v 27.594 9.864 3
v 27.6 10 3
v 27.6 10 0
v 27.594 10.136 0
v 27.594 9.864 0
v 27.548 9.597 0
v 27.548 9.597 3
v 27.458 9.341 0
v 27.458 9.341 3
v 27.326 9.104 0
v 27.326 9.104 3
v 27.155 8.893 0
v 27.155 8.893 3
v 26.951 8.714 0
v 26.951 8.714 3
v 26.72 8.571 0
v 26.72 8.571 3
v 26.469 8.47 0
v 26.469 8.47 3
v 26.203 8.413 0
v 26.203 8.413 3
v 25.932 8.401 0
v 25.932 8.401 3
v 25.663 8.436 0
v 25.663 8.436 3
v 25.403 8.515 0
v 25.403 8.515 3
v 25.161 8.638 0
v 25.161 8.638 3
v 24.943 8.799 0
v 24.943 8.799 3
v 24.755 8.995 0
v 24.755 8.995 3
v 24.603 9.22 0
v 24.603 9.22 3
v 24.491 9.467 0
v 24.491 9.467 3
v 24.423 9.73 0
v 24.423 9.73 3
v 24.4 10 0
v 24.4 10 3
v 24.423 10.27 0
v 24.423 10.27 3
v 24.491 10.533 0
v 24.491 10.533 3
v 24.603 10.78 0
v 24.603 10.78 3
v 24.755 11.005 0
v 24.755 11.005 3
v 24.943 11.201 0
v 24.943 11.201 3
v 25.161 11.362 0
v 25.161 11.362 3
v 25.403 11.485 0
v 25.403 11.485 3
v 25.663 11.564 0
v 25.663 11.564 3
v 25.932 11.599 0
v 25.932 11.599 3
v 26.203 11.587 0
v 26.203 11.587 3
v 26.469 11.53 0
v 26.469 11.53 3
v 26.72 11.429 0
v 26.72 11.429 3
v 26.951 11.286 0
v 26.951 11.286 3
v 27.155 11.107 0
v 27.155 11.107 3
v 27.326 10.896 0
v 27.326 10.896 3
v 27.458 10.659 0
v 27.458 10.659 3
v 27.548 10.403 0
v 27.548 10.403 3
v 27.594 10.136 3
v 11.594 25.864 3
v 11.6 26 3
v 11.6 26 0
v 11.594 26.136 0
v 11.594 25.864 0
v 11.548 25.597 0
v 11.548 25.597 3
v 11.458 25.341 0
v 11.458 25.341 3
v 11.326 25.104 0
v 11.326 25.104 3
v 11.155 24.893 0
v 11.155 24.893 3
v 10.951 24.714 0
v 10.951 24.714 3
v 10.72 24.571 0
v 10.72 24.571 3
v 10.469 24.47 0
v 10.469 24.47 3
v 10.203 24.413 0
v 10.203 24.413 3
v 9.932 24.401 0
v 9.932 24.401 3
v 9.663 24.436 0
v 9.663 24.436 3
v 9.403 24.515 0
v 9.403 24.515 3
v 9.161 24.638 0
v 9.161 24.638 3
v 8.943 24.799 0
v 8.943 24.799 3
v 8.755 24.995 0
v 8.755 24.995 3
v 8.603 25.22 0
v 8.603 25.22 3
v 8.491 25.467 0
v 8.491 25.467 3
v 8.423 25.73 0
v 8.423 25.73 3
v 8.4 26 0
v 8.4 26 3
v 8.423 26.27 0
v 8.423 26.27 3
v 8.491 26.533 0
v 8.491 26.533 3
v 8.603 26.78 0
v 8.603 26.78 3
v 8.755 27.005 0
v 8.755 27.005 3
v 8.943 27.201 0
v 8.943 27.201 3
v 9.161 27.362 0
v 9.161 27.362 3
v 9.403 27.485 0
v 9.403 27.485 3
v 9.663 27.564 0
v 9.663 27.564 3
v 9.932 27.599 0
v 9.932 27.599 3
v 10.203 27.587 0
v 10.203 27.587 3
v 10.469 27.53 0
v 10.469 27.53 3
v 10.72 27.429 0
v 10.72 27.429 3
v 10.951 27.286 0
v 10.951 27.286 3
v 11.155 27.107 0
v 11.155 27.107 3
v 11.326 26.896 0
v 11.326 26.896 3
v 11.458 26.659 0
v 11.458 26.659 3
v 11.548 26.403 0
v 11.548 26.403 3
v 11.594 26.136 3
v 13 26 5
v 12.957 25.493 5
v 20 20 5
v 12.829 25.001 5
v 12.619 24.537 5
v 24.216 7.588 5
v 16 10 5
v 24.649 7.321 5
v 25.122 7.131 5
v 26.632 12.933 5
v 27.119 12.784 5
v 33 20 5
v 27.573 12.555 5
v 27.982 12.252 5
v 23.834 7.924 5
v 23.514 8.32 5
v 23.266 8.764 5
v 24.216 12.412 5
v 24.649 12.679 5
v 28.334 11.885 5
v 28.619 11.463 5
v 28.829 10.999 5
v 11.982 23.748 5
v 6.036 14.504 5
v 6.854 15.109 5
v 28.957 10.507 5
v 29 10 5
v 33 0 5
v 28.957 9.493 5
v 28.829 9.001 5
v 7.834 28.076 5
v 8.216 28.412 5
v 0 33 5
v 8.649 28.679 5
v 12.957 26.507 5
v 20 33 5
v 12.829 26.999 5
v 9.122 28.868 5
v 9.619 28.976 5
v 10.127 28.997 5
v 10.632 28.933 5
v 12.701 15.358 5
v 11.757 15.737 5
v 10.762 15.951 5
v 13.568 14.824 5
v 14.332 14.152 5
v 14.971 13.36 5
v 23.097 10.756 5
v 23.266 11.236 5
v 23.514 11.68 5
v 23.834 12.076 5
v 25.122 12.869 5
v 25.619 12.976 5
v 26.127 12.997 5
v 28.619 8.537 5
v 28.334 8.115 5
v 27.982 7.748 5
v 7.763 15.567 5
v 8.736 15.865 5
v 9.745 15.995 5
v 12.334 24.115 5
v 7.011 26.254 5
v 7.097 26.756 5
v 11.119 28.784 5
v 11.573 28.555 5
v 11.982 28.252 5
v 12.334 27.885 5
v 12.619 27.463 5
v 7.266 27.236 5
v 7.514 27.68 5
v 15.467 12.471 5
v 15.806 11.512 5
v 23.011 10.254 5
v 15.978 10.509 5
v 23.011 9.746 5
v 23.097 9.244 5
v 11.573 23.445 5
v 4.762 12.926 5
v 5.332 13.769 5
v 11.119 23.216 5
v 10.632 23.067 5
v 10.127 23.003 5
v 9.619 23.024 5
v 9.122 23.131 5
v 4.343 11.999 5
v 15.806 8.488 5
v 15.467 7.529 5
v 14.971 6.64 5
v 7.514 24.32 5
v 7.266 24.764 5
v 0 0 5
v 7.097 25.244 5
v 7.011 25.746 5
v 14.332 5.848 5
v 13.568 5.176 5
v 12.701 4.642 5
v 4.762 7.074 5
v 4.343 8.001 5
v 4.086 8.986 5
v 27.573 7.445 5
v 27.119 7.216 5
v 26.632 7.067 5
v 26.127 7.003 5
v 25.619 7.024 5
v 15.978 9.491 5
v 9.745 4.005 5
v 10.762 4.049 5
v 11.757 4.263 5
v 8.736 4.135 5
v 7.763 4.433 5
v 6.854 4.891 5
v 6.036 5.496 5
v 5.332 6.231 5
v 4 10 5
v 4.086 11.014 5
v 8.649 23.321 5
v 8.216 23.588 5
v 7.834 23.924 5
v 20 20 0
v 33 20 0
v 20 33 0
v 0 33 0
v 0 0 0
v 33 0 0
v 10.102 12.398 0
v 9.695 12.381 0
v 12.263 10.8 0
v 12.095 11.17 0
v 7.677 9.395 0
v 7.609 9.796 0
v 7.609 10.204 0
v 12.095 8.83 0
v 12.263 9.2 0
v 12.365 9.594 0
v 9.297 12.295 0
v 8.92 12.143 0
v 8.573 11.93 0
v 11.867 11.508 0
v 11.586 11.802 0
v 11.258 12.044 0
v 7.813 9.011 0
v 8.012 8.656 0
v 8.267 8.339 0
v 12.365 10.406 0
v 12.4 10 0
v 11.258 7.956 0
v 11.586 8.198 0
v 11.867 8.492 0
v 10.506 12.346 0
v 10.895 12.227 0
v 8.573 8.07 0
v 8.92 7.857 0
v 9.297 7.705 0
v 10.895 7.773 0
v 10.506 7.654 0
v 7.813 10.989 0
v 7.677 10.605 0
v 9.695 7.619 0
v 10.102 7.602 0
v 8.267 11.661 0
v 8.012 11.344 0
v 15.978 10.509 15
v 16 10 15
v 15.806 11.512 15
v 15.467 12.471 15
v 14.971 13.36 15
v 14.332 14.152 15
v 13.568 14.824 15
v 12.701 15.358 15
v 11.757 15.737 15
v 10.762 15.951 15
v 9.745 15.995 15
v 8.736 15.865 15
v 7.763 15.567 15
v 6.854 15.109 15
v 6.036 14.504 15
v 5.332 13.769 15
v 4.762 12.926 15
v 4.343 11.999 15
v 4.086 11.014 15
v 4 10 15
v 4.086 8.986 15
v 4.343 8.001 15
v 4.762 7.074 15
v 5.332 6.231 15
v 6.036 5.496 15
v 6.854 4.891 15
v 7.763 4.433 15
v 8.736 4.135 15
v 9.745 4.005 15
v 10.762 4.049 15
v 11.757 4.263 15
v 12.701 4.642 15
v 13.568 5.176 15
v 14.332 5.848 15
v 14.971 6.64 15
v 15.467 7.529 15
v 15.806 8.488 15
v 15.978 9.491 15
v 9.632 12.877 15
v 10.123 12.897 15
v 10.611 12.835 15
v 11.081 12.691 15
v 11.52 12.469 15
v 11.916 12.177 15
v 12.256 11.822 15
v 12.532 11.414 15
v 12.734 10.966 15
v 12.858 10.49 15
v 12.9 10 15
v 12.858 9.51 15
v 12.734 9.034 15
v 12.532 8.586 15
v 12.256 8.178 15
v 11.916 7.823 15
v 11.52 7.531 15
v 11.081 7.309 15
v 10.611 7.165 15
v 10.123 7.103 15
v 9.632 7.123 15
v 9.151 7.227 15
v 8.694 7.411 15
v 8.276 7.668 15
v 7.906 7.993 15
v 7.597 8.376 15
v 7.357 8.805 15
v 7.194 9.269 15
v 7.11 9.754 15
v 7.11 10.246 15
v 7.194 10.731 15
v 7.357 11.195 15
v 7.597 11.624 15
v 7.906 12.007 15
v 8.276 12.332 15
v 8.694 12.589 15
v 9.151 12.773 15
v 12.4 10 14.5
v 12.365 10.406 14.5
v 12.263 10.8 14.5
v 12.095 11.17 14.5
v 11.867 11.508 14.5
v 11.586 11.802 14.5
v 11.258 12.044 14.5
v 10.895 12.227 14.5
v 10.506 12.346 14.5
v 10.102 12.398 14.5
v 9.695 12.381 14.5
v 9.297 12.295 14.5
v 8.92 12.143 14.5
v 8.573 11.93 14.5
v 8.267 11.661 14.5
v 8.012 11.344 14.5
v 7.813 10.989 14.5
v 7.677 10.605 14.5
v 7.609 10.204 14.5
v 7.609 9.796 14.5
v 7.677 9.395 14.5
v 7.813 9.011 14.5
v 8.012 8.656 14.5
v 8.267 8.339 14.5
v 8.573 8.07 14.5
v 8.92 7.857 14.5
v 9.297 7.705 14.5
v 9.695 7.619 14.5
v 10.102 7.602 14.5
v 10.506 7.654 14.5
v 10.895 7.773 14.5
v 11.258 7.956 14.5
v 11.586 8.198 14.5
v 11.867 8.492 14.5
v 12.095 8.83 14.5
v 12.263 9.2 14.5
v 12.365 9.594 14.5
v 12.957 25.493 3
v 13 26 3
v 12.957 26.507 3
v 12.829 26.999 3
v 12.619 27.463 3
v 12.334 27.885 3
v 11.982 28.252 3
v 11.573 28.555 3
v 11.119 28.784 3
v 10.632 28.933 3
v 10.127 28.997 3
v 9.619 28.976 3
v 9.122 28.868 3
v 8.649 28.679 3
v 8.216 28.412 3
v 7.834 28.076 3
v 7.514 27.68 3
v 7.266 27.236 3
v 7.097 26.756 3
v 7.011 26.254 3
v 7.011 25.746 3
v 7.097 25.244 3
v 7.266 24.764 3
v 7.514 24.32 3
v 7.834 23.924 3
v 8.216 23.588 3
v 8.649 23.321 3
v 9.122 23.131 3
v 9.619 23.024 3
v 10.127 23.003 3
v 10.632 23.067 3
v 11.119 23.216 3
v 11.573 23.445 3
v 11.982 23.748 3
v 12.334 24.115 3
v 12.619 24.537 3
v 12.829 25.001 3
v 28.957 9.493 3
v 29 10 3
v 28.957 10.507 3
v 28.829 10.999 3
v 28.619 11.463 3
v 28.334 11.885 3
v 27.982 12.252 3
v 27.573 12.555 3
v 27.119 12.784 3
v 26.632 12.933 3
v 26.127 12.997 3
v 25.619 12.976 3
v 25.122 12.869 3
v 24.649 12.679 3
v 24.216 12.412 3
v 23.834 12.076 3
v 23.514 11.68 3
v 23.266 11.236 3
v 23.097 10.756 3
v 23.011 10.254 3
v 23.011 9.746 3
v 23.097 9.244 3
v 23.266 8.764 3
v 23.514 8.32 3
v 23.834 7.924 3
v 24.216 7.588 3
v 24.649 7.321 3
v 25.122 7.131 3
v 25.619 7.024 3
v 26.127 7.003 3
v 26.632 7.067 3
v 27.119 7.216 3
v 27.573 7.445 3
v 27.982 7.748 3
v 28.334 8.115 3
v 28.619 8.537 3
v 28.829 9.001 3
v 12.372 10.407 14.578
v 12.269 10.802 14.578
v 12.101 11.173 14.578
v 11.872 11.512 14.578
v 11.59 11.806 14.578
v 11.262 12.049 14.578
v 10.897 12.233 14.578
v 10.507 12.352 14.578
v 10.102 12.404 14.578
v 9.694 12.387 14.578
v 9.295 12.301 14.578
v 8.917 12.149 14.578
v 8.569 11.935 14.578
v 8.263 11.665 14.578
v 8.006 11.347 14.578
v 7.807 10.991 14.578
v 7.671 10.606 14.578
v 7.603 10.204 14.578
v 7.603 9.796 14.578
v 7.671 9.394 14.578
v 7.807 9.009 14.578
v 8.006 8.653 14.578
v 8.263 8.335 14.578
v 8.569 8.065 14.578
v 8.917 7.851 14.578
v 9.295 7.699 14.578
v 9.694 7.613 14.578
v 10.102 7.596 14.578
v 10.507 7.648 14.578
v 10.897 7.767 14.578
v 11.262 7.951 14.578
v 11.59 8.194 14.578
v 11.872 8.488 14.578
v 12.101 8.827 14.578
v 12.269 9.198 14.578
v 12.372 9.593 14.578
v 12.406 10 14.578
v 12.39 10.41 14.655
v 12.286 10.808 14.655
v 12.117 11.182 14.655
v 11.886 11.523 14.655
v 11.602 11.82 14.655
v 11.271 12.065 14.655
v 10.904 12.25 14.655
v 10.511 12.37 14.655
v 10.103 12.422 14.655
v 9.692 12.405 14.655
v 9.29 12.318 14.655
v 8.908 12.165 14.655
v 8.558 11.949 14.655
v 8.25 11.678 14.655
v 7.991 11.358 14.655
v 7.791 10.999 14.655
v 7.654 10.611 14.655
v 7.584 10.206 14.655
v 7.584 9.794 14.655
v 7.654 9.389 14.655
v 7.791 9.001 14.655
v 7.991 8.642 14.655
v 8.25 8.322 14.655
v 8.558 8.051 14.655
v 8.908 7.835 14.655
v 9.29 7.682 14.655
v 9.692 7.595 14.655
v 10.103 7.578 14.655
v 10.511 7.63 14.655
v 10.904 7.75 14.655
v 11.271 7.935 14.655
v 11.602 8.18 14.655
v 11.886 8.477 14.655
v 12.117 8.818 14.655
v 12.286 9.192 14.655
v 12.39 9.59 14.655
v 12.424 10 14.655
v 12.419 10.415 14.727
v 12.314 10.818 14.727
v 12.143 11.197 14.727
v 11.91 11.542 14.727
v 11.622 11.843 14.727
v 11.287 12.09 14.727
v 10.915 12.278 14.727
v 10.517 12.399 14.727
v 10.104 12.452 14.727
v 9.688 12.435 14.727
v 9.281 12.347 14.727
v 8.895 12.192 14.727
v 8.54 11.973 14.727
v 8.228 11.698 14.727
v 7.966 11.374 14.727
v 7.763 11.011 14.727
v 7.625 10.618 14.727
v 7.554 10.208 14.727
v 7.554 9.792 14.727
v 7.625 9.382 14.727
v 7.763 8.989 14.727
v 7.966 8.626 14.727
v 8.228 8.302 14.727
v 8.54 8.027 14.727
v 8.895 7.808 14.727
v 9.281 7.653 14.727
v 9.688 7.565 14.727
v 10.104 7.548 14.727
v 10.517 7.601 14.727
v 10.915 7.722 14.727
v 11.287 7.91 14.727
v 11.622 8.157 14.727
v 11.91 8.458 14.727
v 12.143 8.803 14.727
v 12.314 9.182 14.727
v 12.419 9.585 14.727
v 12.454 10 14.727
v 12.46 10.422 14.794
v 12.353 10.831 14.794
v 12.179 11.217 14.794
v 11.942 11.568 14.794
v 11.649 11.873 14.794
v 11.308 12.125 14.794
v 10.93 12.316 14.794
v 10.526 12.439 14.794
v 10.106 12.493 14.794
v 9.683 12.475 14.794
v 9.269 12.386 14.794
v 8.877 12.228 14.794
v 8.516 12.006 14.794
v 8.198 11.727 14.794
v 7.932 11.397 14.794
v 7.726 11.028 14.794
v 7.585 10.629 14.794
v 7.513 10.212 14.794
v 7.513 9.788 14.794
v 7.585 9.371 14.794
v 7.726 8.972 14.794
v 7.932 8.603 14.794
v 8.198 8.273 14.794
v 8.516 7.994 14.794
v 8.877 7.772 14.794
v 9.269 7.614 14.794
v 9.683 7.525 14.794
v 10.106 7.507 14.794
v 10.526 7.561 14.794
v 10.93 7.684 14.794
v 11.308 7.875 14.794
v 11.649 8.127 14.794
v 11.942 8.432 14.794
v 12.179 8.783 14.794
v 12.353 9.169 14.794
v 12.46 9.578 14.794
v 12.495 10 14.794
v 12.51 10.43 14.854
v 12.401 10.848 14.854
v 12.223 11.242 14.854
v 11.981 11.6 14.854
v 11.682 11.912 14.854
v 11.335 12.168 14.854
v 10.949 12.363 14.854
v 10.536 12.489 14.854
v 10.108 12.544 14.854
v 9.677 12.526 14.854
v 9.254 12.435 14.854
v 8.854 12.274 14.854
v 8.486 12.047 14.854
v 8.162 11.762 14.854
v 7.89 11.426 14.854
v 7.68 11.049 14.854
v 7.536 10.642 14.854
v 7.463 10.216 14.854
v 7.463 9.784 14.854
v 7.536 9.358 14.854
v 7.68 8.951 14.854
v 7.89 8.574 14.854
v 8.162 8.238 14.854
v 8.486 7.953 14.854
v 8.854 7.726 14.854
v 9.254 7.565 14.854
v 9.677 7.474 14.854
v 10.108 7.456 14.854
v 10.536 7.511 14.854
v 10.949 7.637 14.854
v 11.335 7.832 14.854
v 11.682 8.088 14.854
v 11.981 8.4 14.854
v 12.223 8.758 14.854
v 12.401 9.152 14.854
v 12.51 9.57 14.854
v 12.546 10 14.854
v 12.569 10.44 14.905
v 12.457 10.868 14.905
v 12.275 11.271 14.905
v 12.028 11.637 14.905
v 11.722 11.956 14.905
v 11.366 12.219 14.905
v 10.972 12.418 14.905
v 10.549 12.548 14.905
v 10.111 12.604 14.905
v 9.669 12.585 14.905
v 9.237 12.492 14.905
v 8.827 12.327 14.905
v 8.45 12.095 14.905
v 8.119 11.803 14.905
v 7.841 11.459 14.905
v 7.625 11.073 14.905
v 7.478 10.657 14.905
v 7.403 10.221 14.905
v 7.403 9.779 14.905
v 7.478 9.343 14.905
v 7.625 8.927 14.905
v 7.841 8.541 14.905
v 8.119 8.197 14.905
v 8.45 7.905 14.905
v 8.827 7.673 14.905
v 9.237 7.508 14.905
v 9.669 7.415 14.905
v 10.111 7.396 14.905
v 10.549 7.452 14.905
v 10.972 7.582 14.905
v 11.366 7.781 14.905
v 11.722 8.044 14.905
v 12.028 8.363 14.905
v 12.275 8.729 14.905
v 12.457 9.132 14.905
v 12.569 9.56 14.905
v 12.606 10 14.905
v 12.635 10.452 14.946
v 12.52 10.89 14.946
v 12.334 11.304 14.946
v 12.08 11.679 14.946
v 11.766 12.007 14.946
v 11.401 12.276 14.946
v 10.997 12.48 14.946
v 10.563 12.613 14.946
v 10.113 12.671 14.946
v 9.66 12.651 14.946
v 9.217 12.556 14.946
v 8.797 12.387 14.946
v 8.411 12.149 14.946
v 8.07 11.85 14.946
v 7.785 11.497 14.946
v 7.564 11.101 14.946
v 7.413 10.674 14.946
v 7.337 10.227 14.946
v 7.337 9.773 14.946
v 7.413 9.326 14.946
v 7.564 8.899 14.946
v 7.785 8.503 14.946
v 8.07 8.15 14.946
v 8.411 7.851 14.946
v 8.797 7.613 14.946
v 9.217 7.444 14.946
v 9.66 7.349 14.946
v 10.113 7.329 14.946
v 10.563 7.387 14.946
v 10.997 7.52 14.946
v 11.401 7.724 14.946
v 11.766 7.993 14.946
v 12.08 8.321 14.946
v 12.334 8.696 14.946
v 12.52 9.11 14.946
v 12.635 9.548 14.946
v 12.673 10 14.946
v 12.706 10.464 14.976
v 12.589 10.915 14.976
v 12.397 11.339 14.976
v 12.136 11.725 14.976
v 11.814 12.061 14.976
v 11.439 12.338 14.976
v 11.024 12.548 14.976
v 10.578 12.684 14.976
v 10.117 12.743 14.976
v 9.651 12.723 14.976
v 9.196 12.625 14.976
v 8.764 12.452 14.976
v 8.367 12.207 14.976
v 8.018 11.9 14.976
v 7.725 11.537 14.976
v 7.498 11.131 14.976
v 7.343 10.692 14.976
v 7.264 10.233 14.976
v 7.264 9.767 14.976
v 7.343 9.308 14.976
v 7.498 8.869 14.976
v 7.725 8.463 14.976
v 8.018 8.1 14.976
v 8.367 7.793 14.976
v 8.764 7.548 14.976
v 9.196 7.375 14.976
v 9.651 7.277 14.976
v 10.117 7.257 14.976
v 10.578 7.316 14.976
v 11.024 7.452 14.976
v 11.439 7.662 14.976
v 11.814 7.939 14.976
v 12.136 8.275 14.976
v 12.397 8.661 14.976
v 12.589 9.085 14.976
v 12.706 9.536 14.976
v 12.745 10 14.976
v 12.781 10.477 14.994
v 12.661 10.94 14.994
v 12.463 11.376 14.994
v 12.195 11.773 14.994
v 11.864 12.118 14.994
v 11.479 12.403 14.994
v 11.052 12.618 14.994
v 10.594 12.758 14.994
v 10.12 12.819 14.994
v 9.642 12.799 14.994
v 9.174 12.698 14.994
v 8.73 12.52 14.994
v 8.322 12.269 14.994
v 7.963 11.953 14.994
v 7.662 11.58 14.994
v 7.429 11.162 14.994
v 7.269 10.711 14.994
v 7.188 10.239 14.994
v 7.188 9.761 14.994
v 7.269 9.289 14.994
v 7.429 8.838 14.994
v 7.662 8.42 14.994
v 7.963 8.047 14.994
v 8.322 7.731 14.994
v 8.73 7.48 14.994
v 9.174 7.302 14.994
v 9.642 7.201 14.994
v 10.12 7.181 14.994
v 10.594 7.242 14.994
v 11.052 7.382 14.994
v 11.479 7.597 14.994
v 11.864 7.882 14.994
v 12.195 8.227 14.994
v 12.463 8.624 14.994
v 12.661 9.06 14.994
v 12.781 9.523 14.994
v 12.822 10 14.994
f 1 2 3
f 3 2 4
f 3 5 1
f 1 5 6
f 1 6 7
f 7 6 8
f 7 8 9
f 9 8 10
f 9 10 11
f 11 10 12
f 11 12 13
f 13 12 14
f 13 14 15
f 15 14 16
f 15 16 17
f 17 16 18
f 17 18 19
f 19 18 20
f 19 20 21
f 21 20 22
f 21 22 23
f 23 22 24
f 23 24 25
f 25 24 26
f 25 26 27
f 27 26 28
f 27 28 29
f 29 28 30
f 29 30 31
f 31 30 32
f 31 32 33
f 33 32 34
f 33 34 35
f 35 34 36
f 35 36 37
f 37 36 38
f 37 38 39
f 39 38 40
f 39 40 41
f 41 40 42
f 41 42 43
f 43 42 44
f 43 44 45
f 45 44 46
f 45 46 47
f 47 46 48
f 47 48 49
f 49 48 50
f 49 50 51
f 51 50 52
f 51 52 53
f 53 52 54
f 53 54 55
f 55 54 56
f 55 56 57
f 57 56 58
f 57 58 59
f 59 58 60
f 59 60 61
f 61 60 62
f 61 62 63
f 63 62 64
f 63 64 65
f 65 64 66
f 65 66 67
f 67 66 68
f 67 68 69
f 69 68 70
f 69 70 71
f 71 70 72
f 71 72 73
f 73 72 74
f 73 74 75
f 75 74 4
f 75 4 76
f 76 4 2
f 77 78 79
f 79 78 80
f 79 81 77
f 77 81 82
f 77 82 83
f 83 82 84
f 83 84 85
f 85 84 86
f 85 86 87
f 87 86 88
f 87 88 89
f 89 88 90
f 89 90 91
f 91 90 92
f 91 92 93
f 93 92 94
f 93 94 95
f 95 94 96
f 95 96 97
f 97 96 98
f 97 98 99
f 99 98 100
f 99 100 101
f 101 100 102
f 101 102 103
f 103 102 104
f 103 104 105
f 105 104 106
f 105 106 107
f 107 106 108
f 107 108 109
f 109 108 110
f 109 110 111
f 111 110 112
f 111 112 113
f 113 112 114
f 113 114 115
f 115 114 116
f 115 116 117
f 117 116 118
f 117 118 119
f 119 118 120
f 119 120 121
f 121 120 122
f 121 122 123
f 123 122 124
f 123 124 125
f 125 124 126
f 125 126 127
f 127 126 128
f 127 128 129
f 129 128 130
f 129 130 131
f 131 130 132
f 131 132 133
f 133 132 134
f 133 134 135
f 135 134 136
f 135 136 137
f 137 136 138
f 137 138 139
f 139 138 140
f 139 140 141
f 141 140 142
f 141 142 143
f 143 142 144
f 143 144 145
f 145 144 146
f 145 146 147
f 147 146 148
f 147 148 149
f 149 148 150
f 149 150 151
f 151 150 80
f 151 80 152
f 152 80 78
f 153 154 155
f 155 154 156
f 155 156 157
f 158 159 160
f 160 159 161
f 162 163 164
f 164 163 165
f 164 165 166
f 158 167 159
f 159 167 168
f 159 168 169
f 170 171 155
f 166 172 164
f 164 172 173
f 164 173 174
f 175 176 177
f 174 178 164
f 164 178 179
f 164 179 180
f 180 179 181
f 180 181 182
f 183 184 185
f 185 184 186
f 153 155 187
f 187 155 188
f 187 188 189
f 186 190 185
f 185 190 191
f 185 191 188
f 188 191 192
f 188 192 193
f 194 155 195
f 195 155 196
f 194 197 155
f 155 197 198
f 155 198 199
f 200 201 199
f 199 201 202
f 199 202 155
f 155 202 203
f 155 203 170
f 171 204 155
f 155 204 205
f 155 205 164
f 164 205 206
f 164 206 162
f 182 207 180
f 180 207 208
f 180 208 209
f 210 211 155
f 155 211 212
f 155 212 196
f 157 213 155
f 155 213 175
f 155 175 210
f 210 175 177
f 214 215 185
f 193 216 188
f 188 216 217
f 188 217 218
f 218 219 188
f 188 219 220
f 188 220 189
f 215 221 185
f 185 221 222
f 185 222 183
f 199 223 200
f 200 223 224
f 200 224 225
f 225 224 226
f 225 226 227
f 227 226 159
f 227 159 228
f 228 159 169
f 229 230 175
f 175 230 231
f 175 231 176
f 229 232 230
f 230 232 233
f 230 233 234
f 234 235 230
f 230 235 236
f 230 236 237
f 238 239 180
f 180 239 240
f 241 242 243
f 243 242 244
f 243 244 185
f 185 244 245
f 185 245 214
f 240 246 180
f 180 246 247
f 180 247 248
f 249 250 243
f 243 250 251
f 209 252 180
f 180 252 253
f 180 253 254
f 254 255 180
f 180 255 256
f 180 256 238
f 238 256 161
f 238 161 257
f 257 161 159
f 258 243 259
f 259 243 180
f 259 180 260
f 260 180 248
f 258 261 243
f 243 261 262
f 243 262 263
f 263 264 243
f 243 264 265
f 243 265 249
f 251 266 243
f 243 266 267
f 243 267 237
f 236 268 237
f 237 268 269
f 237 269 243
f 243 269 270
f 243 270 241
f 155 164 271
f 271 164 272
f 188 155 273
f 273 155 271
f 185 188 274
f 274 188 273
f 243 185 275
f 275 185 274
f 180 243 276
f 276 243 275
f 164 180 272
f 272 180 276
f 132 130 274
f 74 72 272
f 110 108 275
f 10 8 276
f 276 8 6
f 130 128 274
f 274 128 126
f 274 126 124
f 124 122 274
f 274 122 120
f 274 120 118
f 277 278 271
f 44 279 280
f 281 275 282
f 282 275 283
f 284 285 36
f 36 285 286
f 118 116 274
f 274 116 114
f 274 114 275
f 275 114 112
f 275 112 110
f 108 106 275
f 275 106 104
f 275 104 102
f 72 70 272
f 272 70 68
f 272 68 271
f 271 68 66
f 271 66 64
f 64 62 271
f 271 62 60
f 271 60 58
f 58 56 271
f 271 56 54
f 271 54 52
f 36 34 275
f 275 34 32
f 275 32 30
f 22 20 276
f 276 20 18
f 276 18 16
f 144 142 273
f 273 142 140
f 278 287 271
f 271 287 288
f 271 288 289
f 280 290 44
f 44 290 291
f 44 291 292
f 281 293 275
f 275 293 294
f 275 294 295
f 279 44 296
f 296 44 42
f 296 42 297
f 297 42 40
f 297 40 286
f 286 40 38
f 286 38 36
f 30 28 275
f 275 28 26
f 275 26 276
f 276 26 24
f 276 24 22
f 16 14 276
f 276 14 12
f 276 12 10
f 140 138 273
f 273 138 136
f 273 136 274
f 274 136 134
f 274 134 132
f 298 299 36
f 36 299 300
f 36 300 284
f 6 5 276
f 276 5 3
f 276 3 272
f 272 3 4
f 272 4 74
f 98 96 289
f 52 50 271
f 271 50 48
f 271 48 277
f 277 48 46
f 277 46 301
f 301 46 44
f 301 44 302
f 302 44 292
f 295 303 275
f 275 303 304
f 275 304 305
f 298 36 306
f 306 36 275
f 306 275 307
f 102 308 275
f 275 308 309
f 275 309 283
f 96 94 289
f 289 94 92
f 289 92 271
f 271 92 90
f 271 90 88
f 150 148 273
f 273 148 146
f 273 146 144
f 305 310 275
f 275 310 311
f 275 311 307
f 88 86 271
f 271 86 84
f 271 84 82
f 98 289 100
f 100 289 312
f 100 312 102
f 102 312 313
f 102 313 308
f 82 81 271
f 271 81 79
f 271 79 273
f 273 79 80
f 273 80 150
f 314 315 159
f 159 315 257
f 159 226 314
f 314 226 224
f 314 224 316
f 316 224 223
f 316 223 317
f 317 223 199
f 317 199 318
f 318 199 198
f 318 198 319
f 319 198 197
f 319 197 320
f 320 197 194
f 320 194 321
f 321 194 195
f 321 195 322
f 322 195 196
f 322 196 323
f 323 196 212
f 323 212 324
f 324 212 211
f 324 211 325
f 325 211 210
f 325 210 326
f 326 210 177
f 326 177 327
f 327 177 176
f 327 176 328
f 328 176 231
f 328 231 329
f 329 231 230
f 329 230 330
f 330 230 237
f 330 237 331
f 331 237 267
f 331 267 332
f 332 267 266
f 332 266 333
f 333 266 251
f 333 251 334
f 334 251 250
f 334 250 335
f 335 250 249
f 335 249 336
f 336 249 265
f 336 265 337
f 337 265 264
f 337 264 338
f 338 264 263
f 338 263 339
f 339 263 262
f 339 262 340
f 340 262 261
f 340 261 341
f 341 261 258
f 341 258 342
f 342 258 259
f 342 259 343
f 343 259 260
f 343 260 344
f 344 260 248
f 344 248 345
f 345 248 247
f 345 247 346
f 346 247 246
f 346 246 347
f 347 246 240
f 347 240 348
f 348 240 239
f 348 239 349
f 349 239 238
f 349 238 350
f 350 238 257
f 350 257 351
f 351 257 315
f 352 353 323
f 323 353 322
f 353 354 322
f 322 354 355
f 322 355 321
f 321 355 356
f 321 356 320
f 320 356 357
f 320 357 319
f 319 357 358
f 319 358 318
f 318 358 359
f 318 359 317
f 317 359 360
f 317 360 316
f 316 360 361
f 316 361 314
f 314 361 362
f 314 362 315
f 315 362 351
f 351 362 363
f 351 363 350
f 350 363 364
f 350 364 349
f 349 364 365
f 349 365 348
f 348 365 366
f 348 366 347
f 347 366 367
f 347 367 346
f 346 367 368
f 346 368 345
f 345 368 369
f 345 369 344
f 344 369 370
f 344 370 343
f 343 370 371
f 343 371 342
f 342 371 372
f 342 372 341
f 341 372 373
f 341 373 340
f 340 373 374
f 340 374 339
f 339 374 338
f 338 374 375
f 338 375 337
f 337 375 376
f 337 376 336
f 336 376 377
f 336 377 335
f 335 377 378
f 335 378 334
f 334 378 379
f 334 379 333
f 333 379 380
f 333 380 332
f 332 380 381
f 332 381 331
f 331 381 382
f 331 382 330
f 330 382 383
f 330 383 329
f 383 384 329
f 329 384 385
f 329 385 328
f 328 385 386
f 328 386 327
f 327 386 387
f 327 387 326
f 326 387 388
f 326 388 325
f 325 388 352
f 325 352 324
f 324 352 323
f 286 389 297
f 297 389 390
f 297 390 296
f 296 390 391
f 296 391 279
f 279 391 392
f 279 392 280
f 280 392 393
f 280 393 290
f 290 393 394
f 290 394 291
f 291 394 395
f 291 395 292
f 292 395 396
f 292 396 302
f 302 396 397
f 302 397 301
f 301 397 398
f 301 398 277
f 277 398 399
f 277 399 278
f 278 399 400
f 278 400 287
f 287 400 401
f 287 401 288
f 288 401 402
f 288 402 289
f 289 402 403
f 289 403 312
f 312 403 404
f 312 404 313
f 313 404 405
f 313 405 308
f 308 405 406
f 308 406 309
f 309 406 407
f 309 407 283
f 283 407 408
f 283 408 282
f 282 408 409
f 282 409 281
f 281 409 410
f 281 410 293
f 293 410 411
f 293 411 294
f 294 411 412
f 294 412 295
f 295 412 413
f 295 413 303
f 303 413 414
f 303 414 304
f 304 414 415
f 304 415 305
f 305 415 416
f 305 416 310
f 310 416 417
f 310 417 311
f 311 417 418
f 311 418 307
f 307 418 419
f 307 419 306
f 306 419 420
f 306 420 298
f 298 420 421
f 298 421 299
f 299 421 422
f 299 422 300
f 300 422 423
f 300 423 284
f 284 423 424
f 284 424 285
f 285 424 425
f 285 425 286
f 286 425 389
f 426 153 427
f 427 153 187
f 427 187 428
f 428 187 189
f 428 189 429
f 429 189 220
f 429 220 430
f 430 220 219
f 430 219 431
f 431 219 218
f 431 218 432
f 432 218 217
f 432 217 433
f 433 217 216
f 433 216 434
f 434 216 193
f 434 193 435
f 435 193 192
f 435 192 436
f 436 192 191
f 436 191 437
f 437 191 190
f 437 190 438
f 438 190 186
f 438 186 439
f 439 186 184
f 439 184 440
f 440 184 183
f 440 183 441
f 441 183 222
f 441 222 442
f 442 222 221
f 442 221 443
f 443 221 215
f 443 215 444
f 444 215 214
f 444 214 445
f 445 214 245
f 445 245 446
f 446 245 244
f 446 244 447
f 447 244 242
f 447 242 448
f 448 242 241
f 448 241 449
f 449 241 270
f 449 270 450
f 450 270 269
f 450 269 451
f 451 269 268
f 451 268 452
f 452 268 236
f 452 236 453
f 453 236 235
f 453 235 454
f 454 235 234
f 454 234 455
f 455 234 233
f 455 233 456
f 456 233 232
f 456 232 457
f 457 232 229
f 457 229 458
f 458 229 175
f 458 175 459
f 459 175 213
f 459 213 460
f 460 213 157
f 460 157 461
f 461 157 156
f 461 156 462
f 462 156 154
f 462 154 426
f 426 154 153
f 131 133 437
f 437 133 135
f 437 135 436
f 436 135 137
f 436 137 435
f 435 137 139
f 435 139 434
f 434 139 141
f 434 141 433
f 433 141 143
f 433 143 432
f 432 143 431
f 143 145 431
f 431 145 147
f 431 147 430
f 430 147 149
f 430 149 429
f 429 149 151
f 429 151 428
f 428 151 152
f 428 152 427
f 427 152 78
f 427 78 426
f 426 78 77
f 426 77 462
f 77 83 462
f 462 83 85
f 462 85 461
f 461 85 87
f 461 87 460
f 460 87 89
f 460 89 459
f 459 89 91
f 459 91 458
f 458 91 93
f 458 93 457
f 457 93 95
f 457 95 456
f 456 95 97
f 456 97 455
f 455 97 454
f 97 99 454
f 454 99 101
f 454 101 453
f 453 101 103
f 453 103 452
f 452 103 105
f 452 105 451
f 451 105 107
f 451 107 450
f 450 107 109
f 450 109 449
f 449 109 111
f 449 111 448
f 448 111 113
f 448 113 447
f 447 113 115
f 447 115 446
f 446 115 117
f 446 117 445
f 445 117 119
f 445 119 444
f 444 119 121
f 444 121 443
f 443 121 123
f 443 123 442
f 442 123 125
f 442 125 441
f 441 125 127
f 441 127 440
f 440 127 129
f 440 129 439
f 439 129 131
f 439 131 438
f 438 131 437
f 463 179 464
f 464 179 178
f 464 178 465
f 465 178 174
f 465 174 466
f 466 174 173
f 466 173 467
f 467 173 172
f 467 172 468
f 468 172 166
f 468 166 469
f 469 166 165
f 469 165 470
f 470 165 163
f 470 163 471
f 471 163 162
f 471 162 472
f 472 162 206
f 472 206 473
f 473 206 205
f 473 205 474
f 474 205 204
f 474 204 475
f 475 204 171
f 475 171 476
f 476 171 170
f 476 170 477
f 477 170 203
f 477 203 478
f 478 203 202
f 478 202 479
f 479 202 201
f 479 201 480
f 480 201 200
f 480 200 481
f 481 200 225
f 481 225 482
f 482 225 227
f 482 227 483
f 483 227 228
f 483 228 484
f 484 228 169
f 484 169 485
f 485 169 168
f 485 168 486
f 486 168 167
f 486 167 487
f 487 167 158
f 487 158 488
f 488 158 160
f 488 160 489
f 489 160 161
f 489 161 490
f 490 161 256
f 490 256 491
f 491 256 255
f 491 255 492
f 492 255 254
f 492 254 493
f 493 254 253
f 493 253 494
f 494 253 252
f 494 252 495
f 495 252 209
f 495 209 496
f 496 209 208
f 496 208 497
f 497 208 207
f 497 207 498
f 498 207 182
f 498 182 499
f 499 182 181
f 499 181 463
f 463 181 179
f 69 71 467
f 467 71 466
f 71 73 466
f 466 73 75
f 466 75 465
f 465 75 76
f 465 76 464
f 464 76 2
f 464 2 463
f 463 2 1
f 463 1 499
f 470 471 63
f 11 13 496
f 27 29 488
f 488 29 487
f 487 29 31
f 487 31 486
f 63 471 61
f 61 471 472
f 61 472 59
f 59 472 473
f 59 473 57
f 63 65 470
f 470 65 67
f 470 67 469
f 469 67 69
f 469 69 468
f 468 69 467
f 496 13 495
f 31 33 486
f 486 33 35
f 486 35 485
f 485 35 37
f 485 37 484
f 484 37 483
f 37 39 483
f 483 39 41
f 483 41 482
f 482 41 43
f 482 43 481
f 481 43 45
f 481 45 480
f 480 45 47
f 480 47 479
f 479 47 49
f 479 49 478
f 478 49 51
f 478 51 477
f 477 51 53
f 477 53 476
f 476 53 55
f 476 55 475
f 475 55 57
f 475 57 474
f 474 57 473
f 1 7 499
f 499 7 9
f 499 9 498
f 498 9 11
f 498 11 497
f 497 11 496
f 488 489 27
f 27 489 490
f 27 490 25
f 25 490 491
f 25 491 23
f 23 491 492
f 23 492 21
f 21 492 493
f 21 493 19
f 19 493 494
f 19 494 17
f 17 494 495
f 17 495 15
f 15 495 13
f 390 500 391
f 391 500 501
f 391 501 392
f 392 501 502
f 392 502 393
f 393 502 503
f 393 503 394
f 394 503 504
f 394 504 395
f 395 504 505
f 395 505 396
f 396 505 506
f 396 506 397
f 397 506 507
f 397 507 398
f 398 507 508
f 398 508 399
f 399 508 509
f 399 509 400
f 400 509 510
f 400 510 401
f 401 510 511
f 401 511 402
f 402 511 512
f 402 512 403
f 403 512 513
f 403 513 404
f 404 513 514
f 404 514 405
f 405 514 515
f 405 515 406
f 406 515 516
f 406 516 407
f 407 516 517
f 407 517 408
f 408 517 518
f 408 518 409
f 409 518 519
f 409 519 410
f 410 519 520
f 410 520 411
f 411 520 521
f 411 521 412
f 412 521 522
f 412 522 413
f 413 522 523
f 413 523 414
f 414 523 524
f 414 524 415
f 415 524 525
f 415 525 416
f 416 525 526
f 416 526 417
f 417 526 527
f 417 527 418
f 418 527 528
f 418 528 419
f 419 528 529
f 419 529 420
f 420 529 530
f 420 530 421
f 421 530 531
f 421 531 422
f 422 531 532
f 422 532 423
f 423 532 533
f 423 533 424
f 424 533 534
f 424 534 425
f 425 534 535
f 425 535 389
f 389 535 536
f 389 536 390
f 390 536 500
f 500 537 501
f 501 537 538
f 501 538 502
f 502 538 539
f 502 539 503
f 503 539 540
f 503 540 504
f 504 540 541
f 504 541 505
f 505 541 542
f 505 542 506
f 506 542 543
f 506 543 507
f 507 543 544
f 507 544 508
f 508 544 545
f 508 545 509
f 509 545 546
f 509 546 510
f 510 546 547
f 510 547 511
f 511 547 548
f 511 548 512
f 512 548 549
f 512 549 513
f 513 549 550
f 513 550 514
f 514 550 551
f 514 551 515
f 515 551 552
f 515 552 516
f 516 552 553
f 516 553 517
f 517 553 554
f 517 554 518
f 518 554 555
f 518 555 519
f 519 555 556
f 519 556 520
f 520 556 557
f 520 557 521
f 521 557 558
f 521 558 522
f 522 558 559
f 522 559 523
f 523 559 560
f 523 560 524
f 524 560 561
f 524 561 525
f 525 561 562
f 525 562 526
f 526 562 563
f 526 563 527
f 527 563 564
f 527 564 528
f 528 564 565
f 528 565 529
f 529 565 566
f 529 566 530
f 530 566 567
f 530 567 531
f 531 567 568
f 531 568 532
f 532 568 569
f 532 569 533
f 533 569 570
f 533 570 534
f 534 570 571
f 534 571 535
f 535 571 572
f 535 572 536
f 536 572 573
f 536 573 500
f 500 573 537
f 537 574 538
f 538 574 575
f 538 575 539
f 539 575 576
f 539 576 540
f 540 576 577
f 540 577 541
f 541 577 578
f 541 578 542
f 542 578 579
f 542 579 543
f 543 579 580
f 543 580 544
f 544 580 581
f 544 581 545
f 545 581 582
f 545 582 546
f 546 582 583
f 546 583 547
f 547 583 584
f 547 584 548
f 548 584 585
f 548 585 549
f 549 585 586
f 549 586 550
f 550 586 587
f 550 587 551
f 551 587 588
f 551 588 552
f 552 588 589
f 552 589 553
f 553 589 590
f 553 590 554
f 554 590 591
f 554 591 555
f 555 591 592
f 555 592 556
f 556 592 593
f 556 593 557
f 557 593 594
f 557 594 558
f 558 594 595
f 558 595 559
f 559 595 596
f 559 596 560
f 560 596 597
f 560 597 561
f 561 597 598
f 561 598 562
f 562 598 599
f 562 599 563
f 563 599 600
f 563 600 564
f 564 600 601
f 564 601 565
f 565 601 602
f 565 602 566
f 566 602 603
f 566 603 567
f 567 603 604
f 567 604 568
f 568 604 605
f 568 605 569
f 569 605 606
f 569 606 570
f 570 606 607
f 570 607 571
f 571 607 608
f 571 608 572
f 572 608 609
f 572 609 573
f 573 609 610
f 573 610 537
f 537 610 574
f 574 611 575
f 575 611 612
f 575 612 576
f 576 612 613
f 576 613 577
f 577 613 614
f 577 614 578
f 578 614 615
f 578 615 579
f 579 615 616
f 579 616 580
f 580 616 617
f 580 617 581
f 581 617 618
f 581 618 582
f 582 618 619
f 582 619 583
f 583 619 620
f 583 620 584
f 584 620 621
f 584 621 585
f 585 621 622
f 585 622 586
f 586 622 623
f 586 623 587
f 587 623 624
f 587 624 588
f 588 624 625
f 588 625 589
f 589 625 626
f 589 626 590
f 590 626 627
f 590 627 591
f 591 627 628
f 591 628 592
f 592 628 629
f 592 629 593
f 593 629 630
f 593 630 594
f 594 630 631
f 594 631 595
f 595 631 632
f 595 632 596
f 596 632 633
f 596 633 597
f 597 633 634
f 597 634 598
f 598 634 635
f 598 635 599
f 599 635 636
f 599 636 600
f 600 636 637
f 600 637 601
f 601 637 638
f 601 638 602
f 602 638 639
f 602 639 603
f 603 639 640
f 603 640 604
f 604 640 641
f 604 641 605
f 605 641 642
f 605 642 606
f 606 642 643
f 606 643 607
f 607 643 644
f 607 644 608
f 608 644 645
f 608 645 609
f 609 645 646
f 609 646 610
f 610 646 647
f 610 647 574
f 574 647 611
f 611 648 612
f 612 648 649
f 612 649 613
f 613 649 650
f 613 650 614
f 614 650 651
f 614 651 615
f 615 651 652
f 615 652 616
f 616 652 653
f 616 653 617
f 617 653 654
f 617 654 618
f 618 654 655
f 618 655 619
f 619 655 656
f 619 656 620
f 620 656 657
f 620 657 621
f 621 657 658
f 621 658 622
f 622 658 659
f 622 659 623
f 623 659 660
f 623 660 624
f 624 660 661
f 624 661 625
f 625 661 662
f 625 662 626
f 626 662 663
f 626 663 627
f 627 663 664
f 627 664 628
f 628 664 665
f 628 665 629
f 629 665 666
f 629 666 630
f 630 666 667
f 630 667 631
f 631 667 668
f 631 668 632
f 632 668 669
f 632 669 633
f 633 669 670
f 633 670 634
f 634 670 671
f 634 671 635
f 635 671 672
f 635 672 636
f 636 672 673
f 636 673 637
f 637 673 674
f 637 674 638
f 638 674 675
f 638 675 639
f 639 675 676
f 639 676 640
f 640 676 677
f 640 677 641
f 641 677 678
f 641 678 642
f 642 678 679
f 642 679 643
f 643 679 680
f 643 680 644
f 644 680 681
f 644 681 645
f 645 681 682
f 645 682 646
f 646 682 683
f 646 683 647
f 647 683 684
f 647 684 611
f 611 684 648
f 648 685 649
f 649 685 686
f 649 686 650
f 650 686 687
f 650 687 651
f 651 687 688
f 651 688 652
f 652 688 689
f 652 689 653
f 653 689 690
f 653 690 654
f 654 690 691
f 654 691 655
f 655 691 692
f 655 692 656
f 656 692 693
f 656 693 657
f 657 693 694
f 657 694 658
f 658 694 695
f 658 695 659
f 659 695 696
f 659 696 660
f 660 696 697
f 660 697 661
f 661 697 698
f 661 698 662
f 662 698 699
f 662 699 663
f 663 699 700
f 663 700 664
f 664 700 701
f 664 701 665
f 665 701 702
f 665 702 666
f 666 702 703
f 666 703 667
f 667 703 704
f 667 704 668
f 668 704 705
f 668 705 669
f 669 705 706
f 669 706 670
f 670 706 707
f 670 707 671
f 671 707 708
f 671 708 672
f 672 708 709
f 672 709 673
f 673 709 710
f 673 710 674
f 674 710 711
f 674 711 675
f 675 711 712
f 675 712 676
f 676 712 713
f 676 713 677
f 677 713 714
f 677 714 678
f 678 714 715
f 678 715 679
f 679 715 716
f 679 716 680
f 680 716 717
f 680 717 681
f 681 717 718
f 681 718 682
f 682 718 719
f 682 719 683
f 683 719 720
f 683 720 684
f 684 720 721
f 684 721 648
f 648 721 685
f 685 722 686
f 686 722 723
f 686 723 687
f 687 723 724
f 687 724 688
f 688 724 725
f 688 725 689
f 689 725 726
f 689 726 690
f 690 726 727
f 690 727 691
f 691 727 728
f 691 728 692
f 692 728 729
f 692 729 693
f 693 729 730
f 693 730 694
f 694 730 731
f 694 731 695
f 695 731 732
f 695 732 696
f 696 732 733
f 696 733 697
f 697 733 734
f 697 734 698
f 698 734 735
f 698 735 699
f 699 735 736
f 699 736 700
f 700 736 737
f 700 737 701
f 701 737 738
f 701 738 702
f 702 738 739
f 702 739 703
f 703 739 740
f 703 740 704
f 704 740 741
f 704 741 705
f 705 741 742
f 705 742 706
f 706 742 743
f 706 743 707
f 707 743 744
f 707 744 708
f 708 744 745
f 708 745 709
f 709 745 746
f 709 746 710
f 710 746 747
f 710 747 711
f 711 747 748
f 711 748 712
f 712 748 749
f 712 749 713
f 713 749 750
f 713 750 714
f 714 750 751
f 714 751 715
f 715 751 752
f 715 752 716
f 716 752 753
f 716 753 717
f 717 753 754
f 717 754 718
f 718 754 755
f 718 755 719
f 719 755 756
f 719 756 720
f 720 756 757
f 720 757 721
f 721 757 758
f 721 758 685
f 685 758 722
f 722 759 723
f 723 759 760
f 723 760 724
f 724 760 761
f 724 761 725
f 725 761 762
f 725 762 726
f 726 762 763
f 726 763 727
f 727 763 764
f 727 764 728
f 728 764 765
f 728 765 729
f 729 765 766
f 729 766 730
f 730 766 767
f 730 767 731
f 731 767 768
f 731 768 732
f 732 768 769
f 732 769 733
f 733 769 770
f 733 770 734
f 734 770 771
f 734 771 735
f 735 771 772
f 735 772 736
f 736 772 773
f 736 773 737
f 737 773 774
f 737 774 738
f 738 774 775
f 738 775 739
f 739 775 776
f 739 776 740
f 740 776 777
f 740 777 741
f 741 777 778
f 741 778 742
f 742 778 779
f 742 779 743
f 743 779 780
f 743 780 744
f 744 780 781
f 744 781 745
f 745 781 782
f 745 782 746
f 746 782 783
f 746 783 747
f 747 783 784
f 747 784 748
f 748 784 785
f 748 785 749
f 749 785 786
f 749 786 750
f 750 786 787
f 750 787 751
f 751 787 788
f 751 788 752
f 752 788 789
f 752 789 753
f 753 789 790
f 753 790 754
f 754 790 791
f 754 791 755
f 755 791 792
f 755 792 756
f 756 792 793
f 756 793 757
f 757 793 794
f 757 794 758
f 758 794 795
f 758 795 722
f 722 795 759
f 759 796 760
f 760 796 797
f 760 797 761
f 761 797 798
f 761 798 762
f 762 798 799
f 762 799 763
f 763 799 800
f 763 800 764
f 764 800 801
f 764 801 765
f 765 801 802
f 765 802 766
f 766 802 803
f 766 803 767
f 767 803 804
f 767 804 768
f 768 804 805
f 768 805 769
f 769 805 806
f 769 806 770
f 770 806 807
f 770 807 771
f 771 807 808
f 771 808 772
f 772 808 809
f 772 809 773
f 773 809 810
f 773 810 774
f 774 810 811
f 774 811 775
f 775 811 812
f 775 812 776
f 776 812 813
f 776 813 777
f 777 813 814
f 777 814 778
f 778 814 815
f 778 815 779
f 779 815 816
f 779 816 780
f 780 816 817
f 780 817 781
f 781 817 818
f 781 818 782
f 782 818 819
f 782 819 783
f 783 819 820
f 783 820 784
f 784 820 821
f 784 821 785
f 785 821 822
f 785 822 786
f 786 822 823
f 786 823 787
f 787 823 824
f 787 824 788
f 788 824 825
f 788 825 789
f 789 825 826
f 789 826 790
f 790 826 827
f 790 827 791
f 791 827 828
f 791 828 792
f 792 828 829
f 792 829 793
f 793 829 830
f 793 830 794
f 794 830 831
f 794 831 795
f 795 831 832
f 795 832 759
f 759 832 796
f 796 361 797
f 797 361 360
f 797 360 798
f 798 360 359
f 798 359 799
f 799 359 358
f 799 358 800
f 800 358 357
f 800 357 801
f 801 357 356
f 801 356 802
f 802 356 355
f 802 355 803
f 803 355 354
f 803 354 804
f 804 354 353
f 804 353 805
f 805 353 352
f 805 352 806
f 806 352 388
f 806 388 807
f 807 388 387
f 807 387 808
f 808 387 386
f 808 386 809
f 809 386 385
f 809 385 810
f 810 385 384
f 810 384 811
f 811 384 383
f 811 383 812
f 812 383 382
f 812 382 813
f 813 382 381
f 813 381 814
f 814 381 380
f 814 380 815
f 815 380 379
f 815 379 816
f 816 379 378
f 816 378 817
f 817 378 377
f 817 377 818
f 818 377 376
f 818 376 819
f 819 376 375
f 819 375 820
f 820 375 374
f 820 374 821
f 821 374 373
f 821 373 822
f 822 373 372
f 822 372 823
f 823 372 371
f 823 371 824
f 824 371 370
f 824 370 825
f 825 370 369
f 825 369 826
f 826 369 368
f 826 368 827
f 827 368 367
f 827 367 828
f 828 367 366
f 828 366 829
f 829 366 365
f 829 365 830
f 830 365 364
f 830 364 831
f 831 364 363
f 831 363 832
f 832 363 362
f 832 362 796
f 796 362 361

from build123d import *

# Parameters (mm, degrees)
SKETCH_1_W          = 20
SKETCH_1_H          = 20
SKETCH_1_H_2        = 13
SKETCH_1_R          = 1.6
SKETCH_1_W_2        = 13
EXTRUDE_1_DEPTH     = 5
SKETCH_2_R          = 6
EXTRUDE_2_DEPTH     = 10
SKETCH_3_R          = 2.4
CUT_EXTRUDE_1_DEPTH = 50.020403915
SKETCH_4_R          = 3
CUT_EXTRUDE_2_DEPTH = 2
FILLET_1_R          = 0.5


with BuildPart() as part:
    # 草图1 → 凸台-拉伸1 (new body)
    # profile 1 of 3: a face of its own
    with BuildSketch(Plane.XY):
        with Locations((10, 10)):
            Rectangle(SKETCH_1_W, SKETCH_1_H)
    # profile 2 of 3: a face of its own
    with BuildSketch(Plane.XY):
        with Locations((10, 26.5)):
            Rectangle(SKETCH_1_W, SKETCH_1_H_2)
        with Locations((10, 26)):
            Circle(SKETCH_1_R, mode=Mode.SUBTRACT)
    # profile 3 of 3: a face of its own
    with BuildSketch(Plane.XY):
        with Locations((26.5, 10)):
            Rectangle(SKETCH_1_W_2, SKETCH_1_H)
        with Locations((26, 10)):
            Circle(SKETCH_1_R, mode=Mode.SUBTRACT)
    extrude(amount=EXTRUDE_1_DEPTH)

    # 草图2 → 凸台-拉伸2 (add)
    with BuildSketch(Plane.XY.offset(5)):
        with Locations((10, 10)):
            Circle(SKETCH_2_R)
    extrude(amount=EXTRUDE_2_DEPTH)

    # 草图3 → 切除-拉伸1 (cut, through all)
    with BuildSketch(Plane.XY.offset(15)):
        with Locations((10, 10)):
            Circle(SKETCH_3_R)
    extrude(amount=-CUT_EXTRUDE_1_DEPTH, mode=Mode.SUBTRACT)

    # 草图4 → 切除-拉伸2 (cut)
    with BuildSketch(Plane.XY.offset(5)):
        with Locations((10, 26)):
            Circle(SKETCH_4_R)
        with Locations((26, 10)):
            Circle(SKETCH_4_R)
    extrude(amount=-CUT_EXTRUDE_2_DEPTH, mode=Mode.SUBTRACT)

    # 圆角1
    fillet_1_edges = [part.edges().sort_by_distance(p)[0] for p in [
        (7.6, 10, 15),
    ]]
    fillet(fillet_1_edges, radius=FILLET_1_R)


solid = part.part
